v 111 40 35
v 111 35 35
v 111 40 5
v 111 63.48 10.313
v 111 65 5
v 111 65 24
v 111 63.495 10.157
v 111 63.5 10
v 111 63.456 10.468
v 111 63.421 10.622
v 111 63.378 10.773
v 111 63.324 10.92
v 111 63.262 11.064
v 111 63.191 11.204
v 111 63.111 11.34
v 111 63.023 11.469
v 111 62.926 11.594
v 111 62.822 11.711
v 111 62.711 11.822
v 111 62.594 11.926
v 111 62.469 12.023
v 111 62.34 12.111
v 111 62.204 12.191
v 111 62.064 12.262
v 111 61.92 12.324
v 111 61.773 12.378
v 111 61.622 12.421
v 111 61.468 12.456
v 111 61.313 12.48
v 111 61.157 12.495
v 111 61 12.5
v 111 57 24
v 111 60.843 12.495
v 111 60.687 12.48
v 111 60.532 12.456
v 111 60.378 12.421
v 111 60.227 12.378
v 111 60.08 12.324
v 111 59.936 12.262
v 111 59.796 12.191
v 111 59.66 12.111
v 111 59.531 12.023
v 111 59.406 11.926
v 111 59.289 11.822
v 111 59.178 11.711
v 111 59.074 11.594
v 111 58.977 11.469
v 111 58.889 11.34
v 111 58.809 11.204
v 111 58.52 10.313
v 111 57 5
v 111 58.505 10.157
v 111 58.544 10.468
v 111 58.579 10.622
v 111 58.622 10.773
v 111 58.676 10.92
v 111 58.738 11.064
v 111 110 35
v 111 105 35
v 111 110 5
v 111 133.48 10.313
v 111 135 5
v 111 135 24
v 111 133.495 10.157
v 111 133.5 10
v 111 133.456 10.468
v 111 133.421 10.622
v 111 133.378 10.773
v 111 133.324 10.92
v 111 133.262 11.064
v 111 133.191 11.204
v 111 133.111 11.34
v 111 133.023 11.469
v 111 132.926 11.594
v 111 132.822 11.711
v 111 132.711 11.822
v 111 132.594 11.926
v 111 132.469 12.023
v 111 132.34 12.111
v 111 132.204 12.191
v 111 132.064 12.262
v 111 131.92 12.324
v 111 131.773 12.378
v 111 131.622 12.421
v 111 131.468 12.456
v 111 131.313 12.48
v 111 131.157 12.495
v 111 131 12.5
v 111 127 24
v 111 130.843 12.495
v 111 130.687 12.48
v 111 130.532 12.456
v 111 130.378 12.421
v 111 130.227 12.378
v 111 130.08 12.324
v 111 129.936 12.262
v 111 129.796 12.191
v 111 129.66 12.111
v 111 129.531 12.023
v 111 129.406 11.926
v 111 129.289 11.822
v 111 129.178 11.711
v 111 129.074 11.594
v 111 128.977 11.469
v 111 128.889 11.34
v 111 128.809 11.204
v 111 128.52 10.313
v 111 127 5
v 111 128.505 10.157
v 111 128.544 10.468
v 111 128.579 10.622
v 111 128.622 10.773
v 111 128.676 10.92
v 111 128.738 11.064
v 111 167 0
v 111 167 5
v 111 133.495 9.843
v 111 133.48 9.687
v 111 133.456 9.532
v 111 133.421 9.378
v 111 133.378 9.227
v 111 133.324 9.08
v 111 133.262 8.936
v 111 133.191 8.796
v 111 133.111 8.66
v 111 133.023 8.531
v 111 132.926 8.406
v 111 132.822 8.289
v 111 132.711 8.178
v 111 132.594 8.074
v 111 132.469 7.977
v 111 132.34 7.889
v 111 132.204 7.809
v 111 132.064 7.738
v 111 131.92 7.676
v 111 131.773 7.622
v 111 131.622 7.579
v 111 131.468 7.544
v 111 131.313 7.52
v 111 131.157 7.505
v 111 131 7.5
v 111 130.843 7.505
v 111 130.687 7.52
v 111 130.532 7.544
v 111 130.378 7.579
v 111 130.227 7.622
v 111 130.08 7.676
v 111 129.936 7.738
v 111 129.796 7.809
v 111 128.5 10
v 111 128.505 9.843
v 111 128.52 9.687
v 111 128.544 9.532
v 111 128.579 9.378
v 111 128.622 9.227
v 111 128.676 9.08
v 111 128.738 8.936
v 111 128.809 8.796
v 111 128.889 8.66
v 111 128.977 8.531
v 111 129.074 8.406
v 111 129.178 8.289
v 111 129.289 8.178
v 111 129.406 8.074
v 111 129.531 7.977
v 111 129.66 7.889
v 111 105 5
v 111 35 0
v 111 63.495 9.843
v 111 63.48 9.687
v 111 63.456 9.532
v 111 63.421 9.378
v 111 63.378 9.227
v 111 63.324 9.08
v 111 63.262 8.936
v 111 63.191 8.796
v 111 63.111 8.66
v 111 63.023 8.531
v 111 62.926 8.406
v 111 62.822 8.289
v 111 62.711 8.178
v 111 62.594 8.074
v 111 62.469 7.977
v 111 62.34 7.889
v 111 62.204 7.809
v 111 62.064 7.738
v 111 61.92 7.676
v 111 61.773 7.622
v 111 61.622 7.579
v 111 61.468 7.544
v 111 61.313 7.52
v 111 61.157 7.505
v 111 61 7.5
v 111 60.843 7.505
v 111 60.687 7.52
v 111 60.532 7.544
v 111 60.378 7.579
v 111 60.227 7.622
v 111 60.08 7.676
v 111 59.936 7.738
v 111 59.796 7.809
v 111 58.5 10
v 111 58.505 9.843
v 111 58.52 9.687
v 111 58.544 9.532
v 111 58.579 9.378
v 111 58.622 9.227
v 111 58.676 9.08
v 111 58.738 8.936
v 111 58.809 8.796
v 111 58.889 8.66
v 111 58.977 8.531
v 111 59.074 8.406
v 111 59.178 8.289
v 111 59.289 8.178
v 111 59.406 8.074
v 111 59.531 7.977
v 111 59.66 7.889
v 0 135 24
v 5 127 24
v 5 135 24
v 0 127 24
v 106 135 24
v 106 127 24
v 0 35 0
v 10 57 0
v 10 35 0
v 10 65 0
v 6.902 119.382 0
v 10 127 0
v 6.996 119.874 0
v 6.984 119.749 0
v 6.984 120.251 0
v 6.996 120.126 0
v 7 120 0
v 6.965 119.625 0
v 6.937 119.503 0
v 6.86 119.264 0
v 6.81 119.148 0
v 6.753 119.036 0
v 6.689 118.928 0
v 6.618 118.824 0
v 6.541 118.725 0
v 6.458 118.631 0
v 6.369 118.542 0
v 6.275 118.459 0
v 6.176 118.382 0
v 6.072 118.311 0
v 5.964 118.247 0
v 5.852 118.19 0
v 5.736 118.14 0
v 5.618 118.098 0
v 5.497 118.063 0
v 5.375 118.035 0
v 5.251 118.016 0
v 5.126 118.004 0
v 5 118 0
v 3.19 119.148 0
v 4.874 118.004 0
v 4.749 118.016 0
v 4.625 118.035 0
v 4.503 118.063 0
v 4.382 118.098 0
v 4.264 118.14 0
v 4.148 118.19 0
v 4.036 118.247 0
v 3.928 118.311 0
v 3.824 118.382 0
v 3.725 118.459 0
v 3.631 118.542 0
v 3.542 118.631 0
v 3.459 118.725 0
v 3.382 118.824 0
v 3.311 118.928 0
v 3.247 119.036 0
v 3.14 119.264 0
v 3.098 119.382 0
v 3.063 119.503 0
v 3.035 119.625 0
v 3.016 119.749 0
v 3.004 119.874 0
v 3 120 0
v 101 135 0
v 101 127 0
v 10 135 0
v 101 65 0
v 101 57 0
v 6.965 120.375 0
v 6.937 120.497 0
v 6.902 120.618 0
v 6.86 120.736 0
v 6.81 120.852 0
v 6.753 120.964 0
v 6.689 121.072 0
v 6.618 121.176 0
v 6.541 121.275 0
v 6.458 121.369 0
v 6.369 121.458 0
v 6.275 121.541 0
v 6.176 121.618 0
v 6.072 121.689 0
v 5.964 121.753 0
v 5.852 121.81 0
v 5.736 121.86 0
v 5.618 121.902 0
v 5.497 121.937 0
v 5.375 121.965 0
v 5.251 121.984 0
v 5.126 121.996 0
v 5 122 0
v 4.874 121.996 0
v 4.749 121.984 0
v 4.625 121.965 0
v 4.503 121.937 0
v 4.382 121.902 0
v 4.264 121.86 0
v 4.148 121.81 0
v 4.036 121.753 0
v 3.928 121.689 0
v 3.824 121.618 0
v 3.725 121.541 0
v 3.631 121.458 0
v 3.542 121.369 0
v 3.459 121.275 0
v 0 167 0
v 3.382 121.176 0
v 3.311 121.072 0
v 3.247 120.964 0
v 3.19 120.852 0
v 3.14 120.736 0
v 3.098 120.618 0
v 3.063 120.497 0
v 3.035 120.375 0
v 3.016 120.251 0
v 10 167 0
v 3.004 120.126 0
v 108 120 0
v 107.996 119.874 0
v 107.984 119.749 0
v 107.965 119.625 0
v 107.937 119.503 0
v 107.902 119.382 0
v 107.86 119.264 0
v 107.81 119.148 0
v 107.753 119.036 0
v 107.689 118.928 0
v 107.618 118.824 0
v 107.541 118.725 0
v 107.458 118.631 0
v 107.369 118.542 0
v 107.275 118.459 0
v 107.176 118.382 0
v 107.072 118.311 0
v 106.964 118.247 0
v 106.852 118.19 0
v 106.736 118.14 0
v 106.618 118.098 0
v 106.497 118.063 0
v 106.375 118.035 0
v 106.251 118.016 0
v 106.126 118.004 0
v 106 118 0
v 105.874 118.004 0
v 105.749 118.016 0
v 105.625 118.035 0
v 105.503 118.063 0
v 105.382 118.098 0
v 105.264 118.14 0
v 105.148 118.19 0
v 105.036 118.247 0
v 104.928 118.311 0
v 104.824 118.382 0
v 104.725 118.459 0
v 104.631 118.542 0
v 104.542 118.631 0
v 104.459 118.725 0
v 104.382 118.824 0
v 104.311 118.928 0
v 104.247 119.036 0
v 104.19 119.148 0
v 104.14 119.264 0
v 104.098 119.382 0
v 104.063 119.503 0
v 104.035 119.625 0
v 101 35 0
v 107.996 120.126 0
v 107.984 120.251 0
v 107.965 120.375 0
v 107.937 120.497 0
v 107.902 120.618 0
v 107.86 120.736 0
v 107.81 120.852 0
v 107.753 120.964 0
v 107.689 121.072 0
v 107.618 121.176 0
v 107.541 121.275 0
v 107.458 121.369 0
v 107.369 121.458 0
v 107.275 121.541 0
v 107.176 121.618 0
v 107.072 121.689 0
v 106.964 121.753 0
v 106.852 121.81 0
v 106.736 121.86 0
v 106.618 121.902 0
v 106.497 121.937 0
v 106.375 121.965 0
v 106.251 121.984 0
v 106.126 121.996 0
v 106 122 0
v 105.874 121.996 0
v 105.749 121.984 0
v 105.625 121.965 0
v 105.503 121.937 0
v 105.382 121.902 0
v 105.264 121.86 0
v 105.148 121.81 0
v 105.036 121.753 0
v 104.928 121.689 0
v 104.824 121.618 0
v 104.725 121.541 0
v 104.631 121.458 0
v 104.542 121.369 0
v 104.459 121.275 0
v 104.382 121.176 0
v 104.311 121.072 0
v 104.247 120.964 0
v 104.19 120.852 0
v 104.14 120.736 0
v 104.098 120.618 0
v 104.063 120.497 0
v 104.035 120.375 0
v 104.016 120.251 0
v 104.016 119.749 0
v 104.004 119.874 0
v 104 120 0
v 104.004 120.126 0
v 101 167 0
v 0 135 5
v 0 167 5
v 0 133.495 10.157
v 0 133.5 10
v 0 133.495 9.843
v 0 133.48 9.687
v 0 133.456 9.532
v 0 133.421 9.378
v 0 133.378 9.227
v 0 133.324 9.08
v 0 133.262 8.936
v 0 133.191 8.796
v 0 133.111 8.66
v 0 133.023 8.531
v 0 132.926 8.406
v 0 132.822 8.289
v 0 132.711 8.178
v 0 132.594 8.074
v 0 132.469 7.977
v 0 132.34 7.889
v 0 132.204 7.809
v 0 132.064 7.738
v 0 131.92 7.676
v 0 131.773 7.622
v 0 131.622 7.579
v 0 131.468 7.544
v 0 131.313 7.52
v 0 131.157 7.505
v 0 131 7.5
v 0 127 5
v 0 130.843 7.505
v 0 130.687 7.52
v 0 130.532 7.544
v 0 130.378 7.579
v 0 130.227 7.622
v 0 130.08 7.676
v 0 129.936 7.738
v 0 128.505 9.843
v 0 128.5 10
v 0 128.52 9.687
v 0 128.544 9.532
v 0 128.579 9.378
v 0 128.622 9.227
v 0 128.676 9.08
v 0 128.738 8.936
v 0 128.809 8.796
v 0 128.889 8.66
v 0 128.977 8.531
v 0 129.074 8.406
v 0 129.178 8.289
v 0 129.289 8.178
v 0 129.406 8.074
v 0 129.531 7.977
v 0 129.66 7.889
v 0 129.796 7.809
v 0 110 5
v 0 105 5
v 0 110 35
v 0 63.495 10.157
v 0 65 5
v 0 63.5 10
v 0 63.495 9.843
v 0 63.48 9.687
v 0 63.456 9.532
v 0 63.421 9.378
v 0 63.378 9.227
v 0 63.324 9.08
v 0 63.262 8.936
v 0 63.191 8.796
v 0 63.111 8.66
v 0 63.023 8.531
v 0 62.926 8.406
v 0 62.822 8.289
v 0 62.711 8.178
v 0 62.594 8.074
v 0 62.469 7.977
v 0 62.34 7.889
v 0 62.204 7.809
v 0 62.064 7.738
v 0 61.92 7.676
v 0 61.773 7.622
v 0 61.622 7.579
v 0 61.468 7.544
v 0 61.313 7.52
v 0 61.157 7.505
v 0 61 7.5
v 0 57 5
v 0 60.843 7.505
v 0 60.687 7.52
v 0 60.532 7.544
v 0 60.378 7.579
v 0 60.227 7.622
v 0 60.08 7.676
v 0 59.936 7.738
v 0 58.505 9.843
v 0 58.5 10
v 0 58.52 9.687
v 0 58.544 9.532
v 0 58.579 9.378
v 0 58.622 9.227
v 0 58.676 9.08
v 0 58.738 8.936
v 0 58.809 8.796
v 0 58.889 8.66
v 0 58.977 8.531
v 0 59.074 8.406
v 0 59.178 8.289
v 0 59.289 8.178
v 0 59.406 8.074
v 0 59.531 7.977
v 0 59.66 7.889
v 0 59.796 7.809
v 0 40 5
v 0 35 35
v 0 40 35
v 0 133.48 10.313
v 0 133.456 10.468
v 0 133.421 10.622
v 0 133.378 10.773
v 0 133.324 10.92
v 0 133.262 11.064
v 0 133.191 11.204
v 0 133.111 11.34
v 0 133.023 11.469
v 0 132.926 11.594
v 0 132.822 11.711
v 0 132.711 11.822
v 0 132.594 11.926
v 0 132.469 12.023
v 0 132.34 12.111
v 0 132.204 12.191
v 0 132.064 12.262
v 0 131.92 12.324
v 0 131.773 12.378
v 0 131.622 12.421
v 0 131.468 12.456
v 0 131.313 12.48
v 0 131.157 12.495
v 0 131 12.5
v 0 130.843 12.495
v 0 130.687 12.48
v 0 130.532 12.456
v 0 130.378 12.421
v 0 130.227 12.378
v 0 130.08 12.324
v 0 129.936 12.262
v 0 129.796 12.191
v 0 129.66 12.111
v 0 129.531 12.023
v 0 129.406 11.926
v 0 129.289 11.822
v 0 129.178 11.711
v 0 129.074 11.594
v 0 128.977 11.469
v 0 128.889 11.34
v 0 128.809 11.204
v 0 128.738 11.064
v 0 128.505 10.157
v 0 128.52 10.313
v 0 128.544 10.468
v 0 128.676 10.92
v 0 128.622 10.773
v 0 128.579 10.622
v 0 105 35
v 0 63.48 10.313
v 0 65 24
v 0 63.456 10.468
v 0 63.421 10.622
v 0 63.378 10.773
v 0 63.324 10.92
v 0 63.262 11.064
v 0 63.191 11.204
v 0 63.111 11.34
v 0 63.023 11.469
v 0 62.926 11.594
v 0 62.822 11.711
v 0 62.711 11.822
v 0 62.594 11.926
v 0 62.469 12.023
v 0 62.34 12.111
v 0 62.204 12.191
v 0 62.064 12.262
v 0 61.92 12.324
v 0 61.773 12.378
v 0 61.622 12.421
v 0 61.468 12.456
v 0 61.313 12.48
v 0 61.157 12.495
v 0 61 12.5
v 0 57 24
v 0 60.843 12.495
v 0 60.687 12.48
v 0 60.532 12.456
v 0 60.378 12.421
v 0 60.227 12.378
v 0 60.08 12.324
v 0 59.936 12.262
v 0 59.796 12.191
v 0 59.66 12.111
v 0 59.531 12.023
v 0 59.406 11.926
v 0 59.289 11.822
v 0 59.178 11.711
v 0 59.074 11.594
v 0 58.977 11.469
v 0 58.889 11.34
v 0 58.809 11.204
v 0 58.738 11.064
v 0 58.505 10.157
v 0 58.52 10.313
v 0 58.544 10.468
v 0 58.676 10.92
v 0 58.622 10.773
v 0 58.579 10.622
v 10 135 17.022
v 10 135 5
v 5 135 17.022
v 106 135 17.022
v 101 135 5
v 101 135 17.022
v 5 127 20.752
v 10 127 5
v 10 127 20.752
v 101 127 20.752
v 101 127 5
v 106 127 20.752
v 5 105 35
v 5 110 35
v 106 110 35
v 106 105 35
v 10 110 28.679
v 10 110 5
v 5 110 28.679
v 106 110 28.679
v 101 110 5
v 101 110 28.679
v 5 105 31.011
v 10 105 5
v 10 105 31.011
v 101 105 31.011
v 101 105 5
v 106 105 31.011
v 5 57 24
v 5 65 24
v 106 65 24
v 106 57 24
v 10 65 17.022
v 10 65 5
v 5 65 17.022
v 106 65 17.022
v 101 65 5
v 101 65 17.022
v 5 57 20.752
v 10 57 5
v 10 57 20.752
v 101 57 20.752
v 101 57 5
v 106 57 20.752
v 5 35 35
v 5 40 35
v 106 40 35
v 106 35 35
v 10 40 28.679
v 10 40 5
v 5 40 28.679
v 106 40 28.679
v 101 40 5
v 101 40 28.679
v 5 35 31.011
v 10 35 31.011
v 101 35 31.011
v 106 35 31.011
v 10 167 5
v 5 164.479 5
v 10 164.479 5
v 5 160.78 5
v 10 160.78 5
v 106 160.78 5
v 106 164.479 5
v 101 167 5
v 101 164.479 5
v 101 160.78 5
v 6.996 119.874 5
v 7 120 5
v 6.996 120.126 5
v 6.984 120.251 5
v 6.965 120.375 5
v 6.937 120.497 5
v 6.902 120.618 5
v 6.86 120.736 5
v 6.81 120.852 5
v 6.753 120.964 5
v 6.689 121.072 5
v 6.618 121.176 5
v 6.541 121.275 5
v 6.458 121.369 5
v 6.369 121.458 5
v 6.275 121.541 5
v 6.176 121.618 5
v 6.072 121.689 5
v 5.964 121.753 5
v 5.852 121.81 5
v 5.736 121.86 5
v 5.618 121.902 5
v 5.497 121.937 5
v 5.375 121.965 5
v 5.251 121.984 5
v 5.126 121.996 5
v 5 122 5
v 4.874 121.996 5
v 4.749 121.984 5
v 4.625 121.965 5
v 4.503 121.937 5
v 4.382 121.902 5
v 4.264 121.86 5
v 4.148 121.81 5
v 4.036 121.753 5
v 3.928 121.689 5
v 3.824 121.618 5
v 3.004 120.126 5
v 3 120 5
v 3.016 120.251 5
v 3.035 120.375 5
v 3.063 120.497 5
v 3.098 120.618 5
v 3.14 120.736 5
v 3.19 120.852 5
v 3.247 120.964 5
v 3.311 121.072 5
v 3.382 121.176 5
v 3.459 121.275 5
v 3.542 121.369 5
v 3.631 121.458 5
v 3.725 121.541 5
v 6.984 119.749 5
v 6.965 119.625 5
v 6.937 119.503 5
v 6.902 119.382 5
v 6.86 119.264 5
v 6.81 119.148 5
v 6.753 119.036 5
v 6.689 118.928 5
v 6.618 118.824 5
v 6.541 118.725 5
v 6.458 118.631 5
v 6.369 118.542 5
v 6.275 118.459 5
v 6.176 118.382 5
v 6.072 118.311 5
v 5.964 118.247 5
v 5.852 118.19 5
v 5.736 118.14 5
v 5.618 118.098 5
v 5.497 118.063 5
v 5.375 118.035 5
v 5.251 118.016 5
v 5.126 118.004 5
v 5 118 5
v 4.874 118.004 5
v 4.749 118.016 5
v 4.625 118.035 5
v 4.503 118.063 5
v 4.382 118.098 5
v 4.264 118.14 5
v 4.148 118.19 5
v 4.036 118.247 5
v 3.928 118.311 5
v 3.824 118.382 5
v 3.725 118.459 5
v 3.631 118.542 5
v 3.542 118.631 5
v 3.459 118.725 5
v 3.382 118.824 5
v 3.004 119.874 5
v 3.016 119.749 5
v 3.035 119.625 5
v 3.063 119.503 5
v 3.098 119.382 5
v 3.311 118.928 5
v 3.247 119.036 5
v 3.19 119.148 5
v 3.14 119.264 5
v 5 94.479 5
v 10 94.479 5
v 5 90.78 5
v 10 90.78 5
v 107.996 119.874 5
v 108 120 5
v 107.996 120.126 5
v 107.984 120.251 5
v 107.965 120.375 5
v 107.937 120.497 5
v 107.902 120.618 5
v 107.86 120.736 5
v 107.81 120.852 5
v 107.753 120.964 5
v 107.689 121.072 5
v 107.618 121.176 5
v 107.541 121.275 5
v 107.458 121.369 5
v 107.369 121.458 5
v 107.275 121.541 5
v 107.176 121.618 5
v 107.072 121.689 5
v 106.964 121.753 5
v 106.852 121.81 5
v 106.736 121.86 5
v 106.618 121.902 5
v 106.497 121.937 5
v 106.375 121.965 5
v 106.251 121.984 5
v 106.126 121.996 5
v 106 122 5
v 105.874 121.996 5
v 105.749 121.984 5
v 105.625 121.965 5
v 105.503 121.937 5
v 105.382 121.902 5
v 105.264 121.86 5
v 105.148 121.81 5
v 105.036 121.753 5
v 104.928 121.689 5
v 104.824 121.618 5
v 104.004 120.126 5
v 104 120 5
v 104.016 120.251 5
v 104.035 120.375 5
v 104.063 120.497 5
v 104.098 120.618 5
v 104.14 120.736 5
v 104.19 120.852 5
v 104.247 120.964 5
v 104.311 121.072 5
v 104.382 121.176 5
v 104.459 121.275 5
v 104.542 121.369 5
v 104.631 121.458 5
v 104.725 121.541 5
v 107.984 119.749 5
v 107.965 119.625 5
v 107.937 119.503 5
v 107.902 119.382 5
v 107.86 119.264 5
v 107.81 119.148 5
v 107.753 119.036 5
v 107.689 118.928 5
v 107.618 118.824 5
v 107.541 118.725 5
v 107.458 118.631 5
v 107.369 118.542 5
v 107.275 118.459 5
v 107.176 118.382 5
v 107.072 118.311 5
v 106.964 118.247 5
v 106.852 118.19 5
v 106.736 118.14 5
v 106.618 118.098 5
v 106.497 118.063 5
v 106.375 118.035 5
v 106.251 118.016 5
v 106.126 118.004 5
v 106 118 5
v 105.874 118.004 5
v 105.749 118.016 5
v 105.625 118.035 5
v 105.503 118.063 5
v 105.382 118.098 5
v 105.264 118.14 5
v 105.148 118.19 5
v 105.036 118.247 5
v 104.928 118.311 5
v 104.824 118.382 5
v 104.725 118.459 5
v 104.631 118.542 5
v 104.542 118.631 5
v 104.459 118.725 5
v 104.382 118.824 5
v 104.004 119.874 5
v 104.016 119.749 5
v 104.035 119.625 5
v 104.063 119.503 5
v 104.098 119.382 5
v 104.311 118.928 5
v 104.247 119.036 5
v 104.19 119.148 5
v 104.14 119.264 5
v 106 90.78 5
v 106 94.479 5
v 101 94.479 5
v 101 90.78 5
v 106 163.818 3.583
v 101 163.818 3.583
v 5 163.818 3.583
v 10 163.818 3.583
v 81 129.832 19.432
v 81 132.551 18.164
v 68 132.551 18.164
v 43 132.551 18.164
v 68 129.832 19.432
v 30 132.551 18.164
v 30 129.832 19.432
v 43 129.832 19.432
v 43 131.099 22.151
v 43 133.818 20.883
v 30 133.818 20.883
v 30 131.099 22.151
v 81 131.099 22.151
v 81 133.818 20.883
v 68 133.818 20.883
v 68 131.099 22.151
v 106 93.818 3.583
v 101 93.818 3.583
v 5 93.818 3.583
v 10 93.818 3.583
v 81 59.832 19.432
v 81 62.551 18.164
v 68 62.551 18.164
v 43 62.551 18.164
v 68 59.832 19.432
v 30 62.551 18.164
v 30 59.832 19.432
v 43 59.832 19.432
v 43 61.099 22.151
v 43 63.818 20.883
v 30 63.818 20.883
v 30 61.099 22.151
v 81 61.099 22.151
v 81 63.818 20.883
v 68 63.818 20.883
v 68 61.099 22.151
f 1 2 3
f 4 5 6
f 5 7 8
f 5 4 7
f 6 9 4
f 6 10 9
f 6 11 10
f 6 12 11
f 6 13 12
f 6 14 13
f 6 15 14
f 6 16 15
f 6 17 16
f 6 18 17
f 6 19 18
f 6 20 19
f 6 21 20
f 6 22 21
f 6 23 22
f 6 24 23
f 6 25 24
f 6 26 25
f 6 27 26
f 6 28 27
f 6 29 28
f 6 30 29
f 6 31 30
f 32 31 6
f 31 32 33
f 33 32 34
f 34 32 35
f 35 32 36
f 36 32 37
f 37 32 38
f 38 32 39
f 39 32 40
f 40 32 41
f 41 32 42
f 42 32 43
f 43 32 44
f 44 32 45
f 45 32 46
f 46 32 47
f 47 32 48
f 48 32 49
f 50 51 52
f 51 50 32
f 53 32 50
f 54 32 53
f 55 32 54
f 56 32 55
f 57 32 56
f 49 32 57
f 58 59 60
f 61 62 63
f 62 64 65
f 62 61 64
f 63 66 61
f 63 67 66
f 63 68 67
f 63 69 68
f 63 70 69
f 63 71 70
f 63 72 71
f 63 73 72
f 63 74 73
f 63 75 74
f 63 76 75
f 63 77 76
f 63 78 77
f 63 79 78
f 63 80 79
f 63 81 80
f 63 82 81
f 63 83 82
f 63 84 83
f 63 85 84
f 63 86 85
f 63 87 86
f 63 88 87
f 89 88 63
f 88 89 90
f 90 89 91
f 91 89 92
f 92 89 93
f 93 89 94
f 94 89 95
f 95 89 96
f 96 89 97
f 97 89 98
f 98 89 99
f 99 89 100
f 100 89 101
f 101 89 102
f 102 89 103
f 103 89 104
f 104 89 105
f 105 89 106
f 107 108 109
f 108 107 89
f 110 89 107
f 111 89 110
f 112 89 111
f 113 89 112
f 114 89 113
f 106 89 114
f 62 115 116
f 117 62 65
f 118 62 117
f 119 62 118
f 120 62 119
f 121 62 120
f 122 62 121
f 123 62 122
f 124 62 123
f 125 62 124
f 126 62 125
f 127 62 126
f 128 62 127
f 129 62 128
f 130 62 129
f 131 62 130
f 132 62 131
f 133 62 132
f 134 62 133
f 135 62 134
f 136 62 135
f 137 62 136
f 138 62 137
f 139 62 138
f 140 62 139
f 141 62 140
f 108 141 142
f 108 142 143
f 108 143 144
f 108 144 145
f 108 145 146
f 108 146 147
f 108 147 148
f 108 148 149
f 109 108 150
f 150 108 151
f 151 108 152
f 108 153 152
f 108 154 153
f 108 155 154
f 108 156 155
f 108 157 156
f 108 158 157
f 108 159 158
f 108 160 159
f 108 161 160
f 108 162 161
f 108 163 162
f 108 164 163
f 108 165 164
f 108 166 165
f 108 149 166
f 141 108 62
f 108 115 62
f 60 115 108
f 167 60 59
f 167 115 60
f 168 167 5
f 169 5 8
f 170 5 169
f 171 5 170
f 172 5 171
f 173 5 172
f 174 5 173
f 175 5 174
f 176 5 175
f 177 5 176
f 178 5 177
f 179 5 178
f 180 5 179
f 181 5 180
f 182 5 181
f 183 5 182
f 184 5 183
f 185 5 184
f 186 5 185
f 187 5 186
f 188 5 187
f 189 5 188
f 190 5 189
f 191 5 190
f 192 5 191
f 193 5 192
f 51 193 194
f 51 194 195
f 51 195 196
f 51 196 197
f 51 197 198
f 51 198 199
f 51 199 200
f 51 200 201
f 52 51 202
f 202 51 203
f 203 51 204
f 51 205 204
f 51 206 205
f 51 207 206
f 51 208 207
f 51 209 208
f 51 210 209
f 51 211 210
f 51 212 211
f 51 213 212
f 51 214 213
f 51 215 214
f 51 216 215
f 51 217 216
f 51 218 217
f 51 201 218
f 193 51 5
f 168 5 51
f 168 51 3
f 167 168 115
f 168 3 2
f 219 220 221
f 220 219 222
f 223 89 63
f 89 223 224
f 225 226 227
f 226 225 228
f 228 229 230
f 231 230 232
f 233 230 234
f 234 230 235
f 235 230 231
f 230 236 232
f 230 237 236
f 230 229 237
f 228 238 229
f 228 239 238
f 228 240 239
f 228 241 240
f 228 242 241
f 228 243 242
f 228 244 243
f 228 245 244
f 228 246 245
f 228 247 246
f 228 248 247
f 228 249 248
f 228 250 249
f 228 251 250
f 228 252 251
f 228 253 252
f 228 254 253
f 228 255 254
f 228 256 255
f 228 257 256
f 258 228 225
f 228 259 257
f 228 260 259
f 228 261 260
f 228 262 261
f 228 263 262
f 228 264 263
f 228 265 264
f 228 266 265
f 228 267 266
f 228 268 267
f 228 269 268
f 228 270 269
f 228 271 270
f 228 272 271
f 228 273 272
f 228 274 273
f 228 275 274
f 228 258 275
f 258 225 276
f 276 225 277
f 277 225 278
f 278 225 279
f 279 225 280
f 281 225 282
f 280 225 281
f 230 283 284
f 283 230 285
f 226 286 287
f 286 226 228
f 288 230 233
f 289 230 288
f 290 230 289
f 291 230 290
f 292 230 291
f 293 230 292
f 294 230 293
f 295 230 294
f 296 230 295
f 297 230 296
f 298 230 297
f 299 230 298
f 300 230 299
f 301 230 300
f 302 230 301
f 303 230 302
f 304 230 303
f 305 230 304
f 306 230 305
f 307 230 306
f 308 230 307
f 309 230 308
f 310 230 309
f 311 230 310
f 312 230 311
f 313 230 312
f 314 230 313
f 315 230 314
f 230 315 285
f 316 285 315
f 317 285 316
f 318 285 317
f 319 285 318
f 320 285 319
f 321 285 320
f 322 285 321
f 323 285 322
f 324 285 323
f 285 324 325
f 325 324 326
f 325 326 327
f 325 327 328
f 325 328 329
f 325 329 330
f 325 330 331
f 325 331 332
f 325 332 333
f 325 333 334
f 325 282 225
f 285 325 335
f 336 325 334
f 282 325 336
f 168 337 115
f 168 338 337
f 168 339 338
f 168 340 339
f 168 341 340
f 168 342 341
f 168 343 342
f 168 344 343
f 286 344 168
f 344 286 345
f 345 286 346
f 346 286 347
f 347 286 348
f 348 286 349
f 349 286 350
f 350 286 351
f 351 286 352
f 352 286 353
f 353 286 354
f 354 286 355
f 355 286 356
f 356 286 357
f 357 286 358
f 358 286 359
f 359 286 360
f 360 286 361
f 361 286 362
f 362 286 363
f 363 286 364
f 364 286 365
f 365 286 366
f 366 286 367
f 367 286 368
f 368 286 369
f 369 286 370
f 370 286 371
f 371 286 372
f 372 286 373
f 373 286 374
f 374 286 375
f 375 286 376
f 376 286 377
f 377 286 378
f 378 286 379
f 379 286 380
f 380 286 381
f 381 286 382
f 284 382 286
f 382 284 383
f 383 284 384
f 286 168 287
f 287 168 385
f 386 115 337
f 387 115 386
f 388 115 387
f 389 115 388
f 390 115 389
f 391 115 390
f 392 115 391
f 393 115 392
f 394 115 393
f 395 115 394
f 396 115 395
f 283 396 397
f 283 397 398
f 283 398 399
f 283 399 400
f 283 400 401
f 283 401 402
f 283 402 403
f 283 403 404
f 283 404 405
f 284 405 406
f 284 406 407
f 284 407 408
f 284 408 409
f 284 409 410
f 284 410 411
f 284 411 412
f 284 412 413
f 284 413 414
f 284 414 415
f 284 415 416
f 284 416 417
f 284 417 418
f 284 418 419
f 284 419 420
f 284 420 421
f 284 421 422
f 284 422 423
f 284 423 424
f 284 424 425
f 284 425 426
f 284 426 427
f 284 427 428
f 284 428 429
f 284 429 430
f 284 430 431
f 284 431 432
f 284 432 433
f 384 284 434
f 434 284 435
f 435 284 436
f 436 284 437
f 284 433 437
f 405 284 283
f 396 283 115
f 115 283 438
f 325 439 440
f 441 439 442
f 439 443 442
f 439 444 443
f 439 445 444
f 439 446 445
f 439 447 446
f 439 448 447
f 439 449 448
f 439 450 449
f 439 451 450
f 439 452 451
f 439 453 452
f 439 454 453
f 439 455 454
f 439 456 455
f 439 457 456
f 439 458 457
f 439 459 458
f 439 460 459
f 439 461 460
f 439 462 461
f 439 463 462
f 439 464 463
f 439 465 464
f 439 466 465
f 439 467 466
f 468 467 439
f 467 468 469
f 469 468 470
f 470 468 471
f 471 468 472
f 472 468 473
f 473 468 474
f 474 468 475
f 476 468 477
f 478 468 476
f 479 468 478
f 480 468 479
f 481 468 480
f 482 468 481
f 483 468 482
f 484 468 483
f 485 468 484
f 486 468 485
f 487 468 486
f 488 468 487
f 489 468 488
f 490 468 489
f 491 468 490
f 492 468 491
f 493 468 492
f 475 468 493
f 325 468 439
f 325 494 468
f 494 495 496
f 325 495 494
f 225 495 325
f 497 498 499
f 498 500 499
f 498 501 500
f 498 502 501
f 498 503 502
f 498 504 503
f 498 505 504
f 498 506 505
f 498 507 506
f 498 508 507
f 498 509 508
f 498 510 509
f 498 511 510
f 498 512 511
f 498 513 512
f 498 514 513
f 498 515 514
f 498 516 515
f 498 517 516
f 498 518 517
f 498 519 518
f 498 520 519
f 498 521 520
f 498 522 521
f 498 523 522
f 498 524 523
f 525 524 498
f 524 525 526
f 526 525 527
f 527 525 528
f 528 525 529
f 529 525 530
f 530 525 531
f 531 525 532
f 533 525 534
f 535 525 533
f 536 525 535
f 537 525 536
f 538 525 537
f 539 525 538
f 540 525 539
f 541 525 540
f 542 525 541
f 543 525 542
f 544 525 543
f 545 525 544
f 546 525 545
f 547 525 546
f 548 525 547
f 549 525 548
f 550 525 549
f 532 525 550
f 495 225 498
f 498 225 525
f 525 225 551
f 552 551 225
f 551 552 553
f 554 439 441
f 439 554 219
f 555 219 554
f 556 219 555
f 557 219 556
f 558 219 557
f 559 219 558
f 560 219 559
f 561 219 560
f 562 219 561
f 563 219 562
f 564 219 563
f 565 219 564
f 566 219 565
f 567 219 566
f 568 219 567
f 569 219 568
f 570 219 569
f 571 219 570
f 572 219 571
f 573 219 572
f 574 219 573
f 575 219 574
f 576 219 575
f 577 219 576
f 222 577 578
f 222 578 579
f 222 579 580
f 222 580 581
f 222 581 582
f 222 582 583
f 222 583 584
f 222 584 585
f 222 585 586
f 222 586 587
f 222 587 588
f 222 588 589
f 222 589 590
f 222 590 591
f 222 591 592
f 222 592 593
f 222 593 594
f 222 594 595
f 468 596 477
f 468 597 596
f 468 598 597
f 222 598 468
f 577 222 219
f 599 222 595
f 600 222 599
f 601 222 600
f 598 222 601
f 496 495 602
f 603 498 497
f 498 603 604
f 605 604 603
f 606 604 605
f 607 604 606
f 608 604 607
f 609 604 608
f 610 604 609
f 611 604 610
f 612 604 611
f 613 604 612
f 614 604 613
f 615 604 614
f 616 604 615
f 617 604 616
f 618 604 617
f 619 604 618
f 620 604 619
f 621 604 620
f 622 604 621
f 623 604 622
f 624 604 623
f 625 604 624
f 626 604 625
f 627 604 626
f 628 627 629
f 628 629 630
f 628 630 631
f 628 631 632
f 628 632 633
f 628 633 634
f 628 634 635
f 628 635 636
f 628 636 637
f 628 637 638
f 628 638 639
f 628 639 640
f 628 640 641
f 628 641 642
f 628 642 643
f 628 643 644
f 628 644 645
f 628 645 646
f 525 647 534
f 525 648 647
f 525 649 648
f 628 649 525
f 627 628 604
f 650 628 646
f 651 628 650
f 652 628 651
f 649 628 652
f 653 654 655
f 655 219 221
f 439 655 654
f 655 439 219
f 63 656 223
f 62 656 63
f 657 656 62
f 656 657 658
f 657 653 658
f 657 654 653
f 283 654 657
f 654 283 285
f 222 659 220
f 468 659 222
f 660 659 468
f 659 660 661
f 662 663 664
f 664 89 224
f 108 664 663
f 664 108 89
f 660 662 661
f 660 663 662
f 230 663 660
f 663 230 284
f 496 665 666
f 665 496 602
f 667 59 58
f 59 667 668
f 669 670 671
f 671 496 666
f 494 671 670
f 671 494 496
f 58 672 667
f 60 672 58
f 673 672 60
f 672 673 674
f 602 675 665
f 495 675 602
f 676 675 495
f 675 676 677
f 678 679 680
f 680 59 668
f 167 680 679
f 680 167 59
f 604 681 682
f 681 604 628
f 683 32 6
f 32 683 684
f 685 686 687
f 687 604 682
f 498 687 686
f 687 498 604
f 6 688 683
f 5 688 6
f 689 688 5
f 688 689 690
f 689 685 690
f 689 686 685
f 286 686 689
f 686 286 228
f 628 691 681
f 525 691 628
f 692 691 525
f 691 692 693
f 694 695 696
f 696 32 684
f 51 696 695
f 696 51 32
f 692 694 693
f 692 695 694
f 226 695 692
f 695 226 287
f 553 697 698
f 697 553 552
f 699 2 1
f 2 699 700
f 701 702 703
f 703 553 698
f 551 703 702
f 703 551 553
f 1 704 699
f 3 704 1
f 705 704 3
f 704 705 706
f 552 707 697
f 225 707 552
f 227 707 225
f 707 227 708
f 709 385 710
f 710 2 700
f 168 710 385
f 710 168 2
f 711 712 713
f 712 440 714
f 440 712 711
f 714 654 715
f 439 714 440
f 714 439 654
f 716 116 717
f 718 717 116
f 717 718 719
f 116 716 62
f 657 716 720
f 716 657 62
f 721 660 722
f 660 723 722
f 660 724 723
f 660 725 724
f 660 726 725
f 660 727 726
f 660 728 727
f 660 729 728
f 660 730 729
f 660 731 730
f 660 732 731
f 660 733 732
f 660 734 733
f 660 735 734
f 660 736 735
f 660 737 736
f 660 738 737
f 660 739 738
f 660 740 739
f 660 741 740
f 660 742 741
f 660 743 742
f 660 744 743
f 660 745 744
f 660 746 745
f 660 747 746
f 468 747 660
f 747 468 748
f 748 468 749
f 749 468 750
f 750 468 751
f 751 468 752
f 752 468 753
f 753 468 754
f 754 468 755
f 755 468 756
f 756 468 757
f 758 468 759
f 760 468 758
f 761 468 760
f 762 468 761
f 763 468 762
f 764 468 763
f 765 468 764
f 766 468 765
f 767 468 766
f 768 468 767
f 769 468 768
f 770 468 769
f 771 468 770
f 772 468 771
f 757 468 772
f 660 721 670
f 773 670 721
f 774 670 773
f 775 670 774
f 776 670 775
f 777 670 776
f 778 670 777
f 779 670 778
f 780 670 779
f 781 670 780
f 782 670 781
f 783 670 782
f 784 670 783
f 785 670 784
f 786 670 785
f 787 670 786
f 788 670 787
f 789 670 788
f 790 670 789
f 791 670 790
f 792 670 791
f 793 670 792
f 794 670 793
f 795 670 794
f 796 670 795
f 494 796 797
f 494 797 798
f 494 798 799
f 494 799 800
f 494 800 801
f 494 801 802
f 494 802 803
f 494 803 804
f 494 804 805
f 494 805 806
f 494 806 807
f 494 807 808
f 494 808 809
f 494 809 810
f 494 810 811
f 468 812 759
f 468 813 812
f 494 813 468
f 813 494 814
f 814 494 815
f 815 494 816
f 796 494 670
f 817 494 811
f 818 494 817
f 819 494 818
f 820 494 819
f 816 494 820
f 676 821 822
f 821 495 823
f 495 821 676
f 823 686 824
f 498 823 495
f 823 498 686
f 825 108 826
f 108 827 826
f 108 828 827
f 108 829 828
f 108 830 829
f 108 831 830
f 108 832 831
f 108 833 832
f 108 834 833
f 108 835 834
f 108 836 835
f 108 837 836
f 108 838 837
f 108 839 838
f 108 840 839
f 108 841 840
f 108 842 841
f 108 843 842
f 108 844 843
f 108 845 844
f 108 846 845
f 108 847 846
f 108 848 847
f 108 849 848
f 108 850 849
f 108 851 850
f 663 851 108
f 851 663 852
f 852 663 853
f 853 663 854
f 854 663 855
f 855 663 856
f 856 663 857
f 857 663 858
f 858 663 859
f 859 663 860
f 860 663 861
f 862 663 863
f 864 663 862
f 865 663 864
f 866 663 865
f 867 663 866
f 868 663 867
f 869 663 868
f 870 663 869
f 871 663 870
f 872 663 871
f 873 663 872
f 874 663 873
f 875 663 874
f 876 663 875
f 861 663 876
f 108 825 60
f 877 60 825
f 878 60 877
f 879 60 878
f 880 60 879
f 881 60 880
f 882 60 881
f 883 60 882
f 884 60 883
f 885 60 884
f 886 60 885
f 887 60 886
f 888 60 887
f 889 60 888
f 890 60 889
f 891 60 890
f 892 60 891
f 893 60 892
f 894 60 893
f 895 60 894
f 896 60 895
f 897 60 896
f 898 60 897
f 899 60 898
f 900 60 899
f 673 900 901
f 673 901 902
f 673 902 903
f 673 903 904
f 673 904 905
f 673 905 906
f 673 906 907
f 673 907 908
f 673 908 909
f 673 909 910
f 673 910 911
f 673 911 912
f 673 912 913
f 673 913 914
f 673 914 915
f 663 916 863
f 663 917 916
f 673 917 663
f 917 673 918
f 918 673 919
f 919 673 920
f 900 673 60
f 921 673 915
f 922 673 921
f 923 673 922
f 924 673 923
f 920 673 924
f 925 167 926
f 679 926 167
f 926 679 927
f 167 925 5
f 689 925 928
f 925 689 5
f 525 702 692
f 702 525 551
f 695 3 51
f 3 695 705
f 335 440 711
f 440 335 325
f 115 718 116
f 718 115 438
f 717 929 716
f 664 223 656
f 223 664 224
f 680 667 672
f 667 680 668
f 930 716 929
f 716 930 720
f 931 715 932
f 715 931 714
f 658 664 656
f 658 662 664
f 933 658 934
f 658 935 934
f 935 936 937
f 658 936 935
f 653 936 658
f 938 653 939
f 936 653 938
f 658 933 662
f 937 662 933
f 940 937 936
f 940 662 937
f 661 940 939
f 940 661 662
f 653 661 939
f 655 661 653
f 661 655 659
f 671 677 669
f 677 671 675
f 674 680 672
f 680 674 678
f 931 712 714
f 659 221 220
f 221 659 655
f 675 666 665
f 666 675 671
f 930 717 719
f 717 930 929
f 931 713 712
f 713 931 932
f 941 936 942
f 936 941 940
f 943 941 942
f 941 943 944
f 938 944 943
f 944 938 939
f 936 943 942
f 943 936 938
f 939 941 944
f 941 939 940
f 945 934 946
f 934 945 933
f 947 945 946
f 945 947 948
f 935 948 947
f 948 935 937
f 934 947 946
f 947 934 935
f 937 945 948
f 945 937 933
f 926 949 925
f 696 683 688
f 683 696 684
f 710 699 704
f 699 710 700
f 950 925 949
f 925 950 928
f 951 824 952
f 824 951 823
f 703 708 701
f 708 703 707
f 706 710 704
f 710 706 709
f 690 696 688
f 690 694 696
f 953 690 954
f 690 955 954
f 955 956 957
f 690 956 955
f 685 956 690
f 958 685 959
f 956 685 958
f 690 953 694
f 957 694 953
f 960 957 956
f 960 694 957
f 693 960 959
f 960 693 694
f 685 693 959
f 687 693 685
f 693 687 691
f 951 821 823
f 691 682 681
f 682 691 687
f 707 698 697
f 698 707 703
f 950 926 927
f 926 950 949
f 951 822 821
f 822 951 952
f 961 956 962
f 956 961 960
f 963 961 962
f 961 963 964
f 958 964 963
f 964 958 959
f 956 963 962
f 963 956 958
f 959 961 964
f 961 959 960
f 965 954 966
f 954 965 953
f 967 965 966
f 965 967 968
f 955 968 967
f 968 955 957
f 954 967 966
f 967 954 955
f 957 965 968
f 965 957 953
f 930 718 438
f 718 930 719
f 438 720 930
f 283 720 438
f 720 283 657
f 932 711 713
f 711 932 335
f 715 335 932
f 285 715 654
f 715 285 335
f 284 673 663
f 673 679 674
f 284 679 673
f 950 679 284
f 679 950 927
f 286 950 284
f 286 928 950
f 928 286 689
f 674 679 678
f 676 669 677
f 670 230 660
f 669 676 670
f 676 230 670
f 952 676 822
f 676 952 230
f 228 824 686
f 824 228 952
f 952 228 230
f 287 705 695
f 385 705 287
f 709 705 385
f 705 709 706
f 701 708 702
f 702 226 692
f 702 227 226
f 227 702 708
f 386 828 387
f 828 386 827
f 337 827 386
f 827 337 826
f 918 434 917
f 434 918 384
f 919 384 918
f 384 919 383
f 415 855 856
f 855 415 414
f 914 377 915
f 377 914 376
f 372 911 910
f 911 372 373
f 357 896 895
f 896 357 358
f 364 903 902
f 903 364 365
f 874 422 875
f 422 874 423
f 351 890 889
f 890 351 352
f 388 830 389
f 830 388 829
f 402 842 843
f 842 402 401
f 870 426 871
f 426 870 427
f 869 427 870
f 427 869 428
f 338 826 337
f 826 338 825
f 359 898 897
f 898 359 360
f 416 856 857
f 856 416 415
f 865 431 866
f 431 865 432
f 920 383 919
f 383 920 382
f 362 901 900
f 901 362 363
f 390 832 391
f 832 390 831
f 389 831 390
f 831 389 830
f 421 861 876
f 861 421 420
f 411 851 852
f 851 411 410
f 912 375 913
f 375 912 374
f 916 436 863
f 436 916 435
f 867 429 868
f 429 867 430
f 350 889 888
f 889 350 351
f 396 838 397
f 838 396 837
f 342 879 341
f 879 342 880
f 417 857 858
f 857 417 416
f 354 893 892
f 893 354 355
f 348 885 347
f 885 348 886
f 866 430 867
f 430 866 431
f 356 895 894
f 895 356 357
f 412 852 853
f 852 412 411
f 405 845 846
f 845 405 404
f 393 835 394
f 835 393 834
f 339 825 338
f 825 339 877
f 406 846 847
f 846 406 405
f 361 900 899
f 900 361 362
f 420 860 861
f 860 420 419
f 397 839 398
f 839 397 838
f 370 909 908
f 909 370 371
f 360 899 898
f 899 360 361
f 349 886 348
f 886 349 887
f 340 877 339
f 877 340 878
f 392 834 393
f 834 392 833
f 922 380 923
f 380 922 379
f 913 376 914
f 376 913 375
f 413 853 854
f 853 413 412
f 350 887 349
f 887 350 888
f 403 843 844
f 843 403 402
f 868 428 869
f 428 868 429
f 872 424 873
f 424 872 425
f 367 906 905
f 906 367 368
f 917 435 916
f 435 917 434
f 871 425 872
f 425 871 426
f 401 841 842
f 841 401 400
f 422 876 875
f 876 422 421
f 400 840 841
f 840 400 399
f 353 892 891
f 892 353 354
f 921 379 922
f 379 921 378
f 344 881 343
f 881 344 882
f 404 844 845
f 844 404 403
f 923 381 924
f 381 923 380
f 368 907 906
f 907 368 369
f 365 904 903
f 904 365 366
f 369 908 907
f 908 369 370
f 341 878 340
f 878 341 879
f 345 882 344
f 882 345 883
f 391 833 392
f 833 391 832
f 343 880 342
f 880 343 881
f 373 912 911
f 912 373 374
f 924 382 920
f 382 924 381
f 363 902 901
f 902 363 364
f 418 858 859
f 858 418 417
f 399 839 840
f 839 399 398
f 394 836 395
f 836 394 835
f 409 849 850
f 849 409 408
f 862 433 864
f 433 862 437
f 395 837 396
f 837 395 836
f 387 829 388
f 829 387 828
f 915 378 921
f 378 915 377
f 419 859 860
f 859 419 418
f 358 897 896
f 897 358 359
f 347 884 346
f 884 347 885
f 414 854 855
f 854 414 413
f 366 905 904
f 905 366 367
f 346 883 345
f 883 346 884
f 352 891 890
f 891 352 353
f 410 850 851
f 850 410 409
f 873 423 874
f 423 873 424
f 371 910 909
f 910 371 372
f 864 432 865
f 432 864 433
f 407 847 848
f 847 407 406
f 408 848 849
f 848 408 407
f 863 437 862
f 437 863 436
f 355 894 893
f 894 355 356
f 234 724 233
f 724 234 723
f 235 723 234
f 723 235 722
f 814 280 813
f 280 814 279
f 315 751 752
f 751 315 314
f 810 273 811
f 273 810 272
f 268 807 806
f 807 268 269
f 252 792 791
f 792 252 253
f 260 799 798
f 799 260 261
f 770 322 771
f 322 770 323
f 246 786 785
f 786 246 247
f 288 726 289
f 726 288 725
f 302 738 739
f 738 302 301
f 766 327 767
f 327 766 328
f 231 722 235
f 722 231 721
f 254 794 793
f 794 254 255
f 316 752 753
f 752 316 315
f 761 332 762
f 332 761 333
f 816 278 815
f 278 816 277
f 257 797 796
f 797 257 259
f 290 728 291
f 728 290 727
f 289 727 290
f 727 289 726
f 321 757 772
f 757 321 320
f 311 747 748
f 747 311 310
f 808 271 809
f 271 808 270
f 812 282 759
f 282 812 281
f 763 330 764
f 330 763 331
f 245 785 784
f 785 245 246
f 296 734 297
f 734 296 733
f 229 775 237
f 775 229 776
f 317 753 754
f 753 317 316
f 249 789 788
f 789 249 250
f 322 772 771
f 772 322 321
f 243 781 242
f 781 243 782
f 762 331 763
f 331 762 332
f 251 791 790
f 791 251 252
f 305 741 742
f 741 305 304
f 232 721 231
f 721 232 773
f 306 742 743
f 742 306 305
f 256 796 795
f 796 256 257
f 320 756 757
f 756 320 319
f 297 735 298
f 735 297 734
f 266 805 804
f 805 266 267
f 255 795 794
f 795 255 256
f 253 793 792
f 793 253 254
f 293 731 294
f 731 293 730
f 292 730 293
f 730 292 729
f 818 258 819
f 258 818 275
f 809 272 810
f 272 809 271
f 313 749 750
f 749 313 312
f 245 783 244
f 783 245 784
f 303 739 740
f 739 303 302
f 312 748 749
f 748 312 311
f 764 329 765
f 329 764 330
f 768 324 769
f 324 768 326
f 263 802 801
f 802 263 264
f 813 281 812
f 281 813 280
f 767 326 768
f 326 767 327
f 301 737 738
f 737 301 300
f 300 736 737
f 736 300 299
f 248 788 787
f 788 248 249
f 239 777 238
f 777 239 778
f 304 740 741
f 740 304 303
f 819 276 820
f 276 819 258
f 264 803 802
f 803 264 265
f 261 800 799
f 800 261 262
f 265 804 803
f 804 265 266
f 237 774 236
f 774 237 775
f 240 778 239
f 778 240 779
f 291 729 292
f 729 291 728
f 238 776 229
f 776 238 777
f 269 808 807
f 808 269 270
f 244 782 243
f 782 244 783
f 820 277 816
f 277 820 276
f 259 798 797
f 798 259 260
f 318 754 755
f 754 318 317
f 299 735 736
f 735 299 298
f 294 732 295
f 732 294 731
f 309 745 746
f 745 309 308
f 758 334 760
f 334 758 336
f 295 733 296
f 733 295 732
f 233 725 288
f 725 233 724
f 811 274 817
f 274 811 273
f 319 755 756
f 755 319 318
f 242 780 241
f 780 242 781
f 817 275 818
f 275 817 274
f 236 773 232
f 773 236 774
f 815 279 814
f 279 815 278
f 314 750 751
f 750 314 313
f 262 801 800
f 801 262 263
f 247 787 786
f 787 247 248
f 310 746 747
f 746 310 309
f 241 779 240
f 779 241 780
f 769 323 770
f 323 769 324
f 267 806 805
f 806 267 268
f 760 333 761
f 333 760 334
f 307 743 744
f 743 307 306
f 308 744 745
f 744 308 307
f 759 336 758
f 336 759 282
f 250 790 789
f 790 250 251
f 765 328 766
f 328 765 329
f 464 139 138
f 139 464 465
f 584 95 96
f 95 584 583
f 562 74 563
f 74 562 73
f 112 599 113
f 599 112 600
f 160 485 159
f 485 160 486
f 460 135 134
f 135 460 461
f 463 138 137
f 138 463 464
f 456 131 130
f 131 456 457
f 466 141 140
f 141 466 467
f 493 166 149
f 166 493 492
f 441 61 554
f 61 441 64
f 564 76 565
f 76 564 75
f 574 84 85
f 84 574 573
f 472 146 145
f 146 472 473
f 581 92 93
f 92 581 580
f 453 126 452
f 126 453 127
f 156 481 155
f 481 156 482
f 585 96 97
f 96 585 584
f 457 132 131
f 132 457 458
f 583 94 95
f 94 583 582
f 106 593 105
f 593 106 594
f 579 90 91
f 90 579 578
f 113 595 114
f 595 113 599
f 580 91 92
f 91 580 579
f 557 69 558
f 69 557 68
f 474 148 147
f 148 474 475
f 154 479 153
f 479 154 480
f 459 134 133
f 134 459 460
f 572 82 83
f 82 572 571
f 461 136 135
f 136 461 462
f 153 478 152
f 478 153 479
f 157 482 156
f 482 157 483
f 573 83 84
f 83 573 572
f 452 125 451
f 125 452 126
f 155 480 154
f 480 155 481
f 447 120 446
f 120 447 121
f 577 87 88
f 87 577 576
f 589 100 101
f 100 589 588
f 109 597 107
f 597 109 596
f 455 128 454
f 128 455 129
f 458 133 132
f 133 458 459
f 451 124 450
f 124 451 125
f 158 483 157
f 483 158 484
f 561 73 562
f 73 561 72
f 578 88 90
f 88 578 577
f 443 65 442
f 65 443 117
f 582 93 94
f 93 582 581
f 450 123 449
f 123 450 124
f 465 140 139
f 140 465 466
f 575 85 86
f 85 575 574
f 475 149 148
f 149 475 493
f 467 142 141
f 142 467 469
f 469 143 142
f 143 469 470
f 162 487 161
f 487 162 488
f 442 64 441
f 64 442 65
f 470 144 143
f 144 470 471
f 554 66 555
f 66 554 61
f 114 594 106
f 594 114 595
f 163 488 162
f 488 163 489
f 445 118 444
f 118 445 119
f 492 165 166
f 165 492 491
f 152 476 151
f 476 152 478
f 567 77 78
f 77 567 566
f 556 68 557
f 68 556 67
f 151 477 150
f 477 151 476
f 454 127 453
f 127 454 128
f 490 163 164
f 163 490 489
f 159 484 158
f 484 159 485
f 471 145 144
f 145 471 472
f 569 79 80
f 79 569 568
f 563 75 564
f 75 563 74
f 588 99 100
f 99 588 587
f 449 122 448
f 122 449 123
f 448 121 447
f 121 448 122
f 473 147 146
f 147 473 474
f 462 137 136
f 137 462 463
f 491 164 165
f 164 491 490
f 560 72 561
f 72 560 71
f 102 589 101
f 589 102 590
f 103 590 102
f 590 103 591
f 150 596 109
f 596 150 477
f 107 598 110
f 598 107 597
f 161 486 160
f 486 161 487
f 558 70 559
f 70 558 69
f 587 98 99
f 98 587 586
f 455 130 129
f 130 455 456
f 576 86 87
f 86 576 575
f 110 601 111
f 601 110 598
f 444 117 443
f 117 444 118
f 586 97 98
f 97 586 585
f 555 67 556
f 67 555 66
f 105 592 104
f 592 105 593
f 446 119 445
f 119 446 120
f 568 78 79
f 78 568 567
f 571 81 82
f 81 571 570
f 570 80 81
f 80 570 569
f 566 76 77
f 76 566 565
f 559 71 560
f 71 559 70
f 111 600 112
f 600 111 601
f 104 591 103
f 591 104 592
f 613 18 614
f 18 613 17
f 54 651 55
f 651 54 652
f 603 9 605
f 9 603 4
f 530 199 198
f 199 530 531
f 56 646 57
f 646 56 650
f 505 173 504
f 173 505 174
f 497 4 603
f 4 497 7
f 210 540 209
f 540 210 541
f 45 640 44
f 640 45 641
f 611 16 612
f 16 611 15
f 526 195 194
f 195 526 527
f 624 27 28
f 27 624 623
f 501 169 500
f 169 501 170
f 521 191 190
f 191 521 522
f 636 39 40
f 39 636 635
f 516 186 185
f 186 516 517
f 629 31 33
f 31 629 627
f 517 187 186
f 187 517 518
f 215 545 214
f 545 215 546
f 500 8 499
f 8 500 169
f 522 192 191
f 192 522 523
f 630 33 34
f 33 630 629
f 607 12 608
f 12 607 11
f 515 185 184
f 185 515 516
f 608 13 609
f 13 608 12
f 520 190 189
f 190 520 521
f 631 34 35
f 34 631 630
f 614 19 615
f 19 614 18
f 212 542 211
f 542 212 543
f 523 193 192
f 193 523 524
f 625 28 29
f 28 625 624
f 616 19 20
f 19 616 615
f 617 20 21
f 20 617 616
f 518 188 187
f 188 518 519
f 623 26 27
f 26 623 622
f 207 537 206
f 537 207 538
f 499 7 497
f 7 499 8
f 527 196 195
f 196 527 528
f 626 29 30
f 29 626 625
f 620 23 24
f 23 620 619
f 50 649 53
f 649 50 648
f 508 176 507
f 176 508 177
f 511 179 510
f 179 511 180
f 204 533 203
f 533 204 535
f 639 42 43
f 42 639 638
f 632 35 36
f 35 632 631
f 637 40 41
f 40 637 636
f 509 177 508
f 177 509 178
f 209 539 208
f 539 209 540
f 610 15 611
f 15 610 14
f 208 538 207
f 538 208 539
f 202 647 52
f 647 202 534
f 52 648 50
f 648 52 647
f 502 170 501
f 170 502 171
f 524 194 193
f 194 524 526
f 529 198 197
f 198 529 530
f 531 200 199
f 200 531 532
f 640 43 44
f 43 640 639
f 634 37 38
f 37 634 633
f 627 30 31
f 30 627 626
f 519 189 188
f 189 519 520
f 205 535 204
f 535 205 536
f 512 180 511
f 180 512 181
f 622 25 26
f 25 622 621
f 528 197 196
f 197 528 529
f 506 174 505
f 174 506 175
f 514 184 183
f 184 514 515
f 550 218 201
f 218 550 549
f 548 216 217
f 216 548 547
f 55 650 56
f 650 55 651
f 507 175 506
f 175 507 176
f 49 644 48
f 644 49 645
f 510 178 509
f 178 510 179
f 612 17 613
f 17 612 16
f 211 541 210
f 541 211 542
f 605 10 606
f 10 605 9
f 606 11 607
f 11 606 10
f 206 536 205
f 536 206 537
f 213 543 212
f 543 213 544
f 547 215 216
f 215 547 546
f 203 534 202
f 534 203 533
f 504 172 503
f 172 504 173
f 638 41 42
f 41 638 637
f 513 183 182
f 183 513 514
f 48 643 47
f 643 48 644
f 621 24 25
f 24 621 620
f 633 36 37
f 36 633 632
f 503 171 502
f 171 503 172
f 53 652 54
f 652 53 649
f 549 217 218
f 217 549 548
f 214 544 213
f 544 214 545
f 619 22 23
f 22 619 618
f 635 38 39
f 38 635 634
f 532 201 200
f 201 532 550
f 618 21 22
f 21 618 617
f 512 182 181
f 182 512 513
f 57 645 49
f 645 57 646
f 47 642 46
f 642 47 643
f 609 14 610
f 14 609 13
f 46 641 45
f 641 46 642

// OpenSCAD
//
// ktRACK56
//
//

gap1 = 0.002;
gap2 = 0.004;

th = 2;



difference()
{
    union()
    {
        translate([0, 75+52, 0]) cube([(100+1)+5*2, 8, 24]);
        translate([0, 75+30, 0]) cube([(100+1)+5*2, 5, 35]);

        translate([0,  5+52, 0]) cube([(100+1)+5*2, 8, 24]);
        translate([0,  5+30, 0]) cube([(100+1)+5*2, 5, 35]);

        translate([0,  5+30, 0]) cube([(100+1)+5*2, 132, 5]);
    }
    #translate([5, 75, 45]) rotate([-25, 0, 0]) HUB_UNIT();
    #translate([5,  5, 45]) rotate([-25, 0, 0]) HUB_UNIT();
    
    translate([5+5, 135, -gap1]) cube([(100+1)-5*2, 25+10, 100]);
    translate([5+5, 100, -gap1]) cube([(100+1)-5*2, 27, 100]);
    translate([5+5, 65, -gap1]) cube([(100+1)-5*2, 25+10, 100]);
    translate([5+5, 7, -gap1]) cube([(100+1)-5*2, 50, 100]);
    
    #translate([(100+1)+5*2-5, 120, -gap1]) cylinder(h=14, r=4/2, $fn=100);
    #translate([5, 120, -gap1]) cylinder(h=14, r=4/2, $fn=100);


    #translate([-gap1, 131, 10]) rotate([0, 90, 0]) cylinder(h=(100+1)+5*2+gap2, r=5/2, $fn=100);
    #translate([-gap1, 61, 10]) rotate([0, 90, 0]) cylinder(h=(100+1)+5*2+gap2, r=5/2, $fn=100);
}




/*
difference()
{
    union()
    {
        translate([0,    0, 0]) cube([(100+1)+th*2, 170, 22]);
        translate([0,     0, 0]) cube([(100+1)+th*2, 10, 45+5]);
    }
    #translate([th, 5+70, 45]) rotate([-25, 0, 0]) HUB_UNIT();
    #translate([th, 5, 45]) rotate([-25, 0, 0]) HUB_UNIT();
    
    translate([th+5, 135, -gap1]) cube([(100+1)-5*2, 27, 100]);
    translate([th+5, 100, -gap1]) cube([(100+1)-5*2, 27, 100]);
    translate([th+5, 65, -gap1]) cube([(100+1)-5*2, 25, 100]);
    translate([th+5, 7, -gap1]) cube([(100+1)-5*2, 50, 100]);
}
*/


/*

difference()
{
    union()
    {
        translate([0, 100, 0]) rotate([-20, 0, 0]) BASE();
        translate([0,   0, 0]) rotate([-20, 0, 0]) BASE();
        translate([0,   0, 0]) WAKU(105, 37);
    }
}

*/

module WAKU(Y=98+5*2, Z=10)
{
X = 100+5*2;
translate([0, 0, -Z])
difference()
{
    union()
    {
        cube([X, Y, Z]);
    }
    translate([-gap1, 5,     5    ]) cube([X+gap2, Y-5*2,  Z-5*2]);
    translate([5,     -gap1, 5    ]) cube([X-5*2,  Y+gap2, Z-5*2]);
    translate([5,     5,     -gap1]) cube([X-5*2,  Y-5*2,  Z+gap2]);
}
}


module BASE()
{
difference()
{
    union()
    {
        translate([0, 0, 0]) cube([100+5*2, 98+5*2, 10]);
    }
    translate([5*2, 70,  -gap1]) cube([100-5*2, 30, 10]);
    translate([5*2, 5*2, -gap1]) cube([100-5*2, 60-5, 10]);
    
    translate([5, 5, 5]) HUB_UNIT();

}
}



module HUB_UNIT()
{
difference()
{
    union()
    {
        translate([0, 0, 0]) cube([100+1, 98, 25]);
    }
    translate([(100+1)/2-25/2-13, 60+0.5, 0]) cube([13, 3, 3]);
    translate([(100+1)/2+25/2   , 60+0.5, 0]) cube([13, 3, 3]);
}
}

module SW_UNIT()
{
translate([-(14-0.25)/2, -14/2, 0])
difference()
{
    union()
    {
        translate([0, 0, -50]) cube([100, 98, 25]);
        translate([14, 14, -1.5]) rotate([90, 0, 0]) cylinder(h=14, r=1, $fn=3);
        translate([0, 0, -1.5]) rotate([90, 0, 180]) cylinder(h=14, r=1, $fn=3);
    }
}
}

module SWBT_UNIT(RR=6)
{
difference()
{
    union()
    {
        $fn=100;
        translate([-(37.5-RR*2)/2, -(43.5-RR*2)/2, 0])
        minkowski()
        {
            cube([37.5-RR*2, 43.5-RR*2, 12.5-1+gap1]);
            cylinder(r=RR, h=1);
        }
        translate([-27/2, -27/2, -50+gap1]) cube([27, 27, 50]);
    }
}
}

module AQARA_UNIT(RR=9)
{
difference()
{
    union()
    {
        $fn=100;
        translate([-(45-RR*2)/2, -(45.1-RR*2)/2, 0])
        minkowski()
        {
            cube([45-RR*2, 45.1-RR*2, 12-1+gap1]);
            cylinder(r=RR, h=1);
        }
        translate([0, 0, -(20-1)+gap1]) cylinder(h=20, r=40/2, $fn=100);
    }
}
}

module M5ATOM_UNIT(RR=3.5)
{
difference()
{
    union()
    {
        $fn=100;
        translate([-(24.6-RR*2)/2, -(24.6-RR*2)/2, 0])
        minkowski()
        {
            cube([24.6-RR*2, 24.6-RR*2, 9.5-1+gap1]);
            cylinder(r=RR, h=1);
        }
        translate([-15/2, -15/2, -50+gap1]) cube([15, 15, 50]);
        
        translate([-8.5/2, 24.6/2, 9.5-2.5]) cube([8.5, 2+gap2, 2.5+gap1]);
    }
}
}

module NEJI_TOP()
{
difference()
{
    union()
    {
        translate([0, 0, 1]) cylinder(h=20, r=6/2, $fn=100);
        translate([0, 0, -(20-1)+gap1]) cylinder(h=20, r=3.5/2, $fn=100);
    }
}
}
module NEJI_BOTTOM(H=5)
{
difference()
{
    union()
    {
        translate([-6/2, -6/2, -H]) cube([6, 6, H]);
    }
    translate([-5/2, -5/2, -3-1]) cube([5.75, 5.75, 2.5]);
    
    translate([0, 0, -(H-1)+gap1]) cylinder(h=H-1, r=3.5/2, $fn=100);
}
}
module NEJI_BOTTOM2(H=5)
{
difference()
{
    translate([-5/2, -5/2, -3-1]) cube([5.75, 5.75, 2.5]);
}
}
